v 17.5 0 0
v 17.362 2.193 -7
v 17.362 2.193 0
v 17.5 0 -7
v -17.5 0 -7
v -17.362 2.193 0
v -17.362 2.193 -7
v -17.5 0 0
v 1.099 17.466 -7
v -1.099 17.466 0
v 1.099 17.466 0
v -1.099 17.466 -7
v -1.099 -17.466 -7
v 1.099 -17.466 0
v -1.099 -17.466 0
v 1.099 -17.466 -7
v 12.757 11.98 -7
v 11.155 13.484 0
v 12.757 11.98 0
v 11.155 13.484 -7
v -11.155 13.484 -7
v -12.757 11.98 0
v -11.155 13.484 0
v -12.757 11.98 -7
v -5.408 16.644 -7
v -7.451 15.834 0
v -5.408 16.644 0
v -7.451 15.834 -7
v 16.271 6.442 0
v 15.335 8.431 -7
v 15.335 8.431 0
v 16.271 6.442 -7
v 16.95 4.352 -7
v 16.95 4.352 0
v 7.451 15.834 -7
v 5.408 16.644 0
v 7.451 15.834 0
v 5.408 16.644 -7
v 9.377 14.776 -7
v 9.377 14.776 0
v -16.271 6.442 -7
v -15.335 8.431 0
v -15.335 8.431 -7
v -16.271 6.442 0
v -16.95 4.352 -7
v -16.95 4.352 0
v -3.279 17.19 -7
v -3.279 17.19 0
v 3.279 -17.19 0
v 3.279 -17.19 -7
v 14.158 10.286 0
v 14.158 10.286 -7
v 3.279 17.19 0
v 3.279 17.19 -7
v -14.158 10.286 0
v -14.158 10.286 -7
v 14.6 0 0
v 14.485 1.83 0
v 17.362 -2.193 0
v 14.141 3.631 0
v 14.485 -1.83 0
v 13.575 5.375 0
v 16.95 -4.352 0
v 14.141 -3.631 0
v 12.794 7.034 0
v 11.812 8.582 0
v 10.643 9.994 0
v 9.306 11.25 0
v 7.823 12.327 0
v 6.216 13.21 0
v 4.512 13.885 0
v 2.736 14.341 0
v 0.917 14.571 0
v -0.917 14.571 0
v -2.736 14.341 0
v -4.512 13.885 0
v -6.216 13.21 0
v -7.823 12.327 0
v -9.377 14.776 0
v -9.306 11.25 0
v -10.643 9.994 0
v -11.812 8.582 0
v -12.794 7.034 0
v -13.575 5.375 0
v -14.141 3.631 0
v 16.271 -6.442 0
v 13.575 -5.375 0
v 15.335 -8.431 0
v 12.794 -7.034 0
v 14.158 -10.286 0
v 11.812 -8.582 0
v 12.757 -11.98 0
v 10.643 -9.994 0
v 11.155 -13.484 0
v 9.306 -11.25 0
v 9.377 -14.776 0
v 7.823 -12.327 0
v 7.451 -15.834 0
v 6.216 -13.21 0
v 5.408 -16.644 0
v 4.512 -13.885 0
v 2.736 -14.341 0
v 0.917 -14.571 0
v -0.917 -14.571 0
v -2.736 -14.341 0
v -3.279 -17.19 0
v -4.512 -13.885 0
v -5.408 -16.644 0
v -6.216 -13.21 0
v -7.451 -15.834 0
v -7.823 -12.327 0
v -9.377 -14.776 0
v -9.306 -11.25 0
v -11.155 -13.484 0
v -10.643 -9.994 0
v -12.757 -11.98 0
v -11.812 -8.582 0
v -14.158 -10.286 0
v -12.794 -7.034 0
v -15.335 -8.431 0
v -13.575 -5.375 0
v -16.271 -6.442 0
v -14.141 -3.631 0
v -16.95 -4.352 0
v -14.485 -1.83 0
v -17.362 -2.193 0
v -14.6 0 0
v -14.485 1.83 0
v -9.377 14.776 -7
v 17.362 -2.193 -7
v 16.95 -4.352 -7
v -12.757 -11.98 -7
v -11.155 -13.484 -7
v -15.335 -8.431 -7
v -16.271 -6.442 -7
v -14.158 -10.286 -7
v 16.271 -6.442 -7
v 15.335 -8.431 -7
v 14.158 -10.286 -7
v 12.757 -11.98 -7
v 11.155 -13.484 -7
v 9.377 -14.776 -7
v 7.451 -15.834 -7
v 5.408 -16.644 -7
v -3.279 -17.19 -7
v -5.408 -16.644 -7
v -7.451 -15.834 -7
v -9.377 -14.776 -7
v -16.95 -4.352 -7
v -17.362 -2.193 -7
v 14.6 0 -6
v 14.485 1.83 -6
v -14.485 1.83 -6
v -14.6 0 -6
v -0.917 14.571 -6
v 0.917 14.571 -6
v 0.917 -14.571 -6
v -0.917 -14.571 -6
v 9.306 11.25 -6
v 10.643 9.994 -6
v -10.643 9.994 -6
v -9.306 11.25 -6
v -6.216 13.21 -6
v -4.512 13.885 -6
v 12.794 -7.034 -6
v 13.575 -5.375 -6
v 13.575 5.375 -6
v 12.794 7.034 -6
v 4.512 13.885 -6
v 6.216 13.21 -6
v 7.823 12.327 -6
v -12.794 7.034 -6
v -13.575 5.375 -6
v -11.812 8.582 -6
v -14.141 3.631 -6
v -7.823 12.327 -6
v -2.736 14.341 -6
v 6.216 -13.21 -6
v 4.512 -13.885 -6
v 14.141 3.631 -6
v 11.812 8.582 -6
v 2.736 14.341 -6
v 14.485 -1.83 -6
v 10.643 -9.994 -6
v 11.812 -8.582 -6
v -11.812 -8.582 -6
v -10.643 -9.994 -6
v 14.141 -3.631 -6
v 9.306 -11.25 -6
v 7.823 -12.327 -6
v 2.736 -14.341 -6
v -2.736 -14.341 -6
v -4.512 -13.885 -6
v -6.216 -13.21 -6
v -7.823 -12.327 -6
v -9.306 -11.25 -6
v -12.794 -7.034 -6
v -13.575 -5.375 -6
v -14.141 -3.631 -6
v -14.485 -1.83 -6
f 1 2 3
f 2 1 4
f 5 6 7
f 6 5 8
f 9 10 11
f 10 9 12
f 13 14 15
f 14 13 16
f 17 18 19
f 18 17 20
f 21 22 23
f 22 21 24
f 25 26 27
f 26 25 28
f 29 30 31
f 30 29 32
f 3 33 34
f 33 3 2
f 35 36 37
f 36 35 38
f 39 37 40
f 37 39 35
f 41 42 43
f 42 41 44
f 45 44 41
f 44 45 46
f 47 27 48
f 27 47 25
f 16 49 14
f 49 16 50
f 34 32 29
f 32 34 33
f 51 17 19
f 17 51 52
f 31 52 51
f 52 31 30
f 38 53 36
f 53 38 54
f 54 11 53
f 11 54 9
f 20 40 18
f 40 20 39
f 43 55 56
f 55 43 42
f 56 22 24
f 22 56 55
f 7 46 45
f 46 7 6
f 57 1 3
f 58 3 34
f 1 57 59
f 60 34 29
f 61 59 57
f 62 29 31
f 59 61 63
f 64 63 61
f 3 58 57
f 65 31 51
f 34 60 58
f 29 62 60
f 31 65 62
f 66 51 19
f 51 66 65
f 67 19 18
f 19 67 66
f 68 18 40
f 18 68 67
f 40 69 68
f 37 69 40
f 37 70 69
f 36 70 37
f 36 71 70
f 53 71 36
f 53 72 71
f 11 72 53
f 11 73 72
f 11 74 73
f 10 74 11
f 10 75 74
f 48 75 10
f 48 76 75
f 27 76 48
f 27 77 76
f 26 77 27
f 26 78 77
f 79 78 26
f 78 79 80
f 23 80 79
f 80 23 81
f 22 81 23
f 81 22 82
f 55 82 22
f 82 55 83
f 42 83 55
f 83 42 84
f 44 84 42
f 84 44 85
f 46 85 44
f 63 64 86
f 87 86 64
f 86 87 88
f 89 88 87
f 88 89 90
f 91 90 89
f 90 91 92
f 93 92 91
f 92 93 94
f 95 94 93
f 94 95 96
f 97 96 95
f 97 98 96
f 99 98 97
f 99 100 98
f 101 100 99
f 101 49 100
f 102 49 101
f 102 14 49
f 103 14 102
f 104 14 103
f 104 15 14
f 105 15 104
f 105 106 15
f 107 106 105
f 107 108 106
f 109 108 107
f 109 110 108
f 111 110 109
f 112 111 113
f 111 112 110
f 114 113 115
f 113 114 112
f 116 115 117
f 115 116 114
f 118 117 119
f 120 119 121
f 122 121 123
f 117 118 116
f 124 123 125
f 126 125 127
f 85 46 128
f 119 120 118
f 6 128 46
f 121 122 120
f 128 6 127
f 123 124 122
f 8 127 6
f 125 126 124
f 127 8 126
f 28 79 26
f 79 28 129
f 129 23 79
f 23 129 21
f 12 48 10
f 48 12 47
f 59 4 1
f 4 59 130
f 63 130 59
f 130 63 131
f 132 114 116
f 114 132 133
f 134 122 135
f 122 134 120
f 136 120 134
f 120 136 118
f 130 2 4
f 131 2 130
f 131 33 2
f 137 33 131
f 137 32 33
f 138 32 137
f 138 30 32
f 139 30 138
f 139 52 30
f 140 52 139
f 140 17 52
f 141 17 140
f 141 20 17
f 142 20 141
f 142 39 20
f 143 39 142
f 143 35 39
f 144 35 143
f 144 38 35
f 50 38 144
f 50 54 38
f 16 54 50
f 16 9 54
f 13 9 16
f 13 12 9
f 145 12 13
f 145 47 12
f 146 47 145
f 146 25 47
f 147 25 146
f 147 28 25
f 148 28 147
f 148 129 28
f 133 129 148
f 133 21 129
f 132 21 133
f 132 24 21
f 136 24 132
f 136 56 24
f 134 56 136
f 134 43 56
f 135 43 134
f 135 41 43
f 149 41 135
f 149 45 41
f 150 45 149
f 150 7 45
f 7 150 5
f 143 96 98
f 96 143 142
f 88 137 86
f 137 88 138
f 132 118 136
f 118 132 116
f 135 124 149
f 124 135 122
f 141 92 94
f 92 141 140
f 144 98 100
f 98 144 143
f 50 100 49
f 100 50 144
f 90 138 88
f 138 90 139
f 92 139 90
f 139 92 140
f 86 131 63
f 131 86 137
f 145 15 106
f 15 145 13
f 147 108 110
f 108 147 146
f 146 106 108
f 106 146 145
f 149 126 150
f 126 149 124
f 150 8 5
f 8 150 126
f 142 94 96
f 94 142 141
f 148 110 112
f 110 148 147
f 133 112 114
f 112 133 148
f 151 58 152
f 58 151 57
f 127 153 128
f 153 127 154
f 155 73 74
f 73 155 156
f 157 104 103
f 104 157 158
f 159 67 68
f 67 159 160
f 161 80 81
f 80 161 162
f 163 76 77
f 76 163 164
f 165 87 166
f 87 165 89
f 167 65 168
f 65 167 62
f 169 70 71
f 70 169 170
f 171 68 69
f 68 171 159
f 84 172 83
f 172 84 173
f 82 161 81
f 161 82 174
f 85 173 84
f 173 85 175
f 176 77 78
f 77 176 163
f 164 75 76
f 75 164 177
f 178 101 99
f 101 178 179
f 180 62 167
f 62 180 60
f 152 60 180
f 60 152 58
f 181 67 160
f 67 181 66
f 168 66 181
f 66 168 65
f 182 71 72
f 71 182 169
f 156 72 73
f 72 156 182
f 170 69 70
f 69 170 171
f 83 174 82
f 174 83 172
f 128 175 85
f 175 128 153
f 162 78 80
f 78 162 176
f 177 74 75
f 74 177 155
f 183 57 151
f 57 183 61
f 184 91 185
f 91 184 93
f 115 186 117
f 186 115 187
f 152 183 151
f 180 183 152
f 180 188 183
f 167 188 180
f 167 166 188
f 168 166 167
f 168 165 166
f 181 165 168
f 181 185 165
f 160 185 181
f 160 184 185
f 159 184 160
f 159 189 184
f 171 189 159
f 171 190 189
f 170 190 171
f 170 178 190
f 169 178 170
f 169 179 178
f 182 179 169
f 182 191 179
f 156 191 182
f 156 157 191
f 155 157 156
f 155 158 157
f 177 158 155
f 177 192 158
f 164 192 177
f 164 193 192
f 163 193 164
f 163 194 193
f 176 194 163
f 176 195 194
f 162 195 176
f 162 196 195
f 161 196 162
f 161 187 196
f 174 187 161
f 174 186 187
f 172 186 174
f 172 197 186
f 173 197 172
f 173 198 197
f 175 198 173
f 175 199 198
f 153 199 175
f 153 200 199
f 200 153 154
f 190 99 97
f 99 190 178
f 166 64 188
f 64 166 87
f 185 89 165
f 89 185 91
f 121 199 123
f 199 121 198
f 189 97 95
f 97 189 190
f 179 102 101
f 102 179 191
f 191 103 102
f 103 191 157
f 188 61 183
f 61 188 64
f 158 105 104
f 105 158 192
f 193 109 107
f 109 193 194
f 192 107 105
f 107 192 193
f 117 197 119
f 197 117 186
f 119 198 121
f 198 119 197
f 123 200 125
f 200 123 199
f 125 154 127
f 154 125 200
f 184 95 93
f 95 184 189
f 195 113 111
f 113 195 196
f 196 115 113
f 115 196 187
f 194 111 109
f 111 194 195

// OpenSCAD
$fn = 50;


difference() {
	union() {
		translate(v = [0, 0, -7.0000000000]) {
			cylinder(h = 7, r = 17.5000000000);
		}
	}
	union() {
		#translate(v = [0, 0, -6.0000000000]) {
			cylinder(h = 6, r = 14.6000000000);
		}
	}
}
